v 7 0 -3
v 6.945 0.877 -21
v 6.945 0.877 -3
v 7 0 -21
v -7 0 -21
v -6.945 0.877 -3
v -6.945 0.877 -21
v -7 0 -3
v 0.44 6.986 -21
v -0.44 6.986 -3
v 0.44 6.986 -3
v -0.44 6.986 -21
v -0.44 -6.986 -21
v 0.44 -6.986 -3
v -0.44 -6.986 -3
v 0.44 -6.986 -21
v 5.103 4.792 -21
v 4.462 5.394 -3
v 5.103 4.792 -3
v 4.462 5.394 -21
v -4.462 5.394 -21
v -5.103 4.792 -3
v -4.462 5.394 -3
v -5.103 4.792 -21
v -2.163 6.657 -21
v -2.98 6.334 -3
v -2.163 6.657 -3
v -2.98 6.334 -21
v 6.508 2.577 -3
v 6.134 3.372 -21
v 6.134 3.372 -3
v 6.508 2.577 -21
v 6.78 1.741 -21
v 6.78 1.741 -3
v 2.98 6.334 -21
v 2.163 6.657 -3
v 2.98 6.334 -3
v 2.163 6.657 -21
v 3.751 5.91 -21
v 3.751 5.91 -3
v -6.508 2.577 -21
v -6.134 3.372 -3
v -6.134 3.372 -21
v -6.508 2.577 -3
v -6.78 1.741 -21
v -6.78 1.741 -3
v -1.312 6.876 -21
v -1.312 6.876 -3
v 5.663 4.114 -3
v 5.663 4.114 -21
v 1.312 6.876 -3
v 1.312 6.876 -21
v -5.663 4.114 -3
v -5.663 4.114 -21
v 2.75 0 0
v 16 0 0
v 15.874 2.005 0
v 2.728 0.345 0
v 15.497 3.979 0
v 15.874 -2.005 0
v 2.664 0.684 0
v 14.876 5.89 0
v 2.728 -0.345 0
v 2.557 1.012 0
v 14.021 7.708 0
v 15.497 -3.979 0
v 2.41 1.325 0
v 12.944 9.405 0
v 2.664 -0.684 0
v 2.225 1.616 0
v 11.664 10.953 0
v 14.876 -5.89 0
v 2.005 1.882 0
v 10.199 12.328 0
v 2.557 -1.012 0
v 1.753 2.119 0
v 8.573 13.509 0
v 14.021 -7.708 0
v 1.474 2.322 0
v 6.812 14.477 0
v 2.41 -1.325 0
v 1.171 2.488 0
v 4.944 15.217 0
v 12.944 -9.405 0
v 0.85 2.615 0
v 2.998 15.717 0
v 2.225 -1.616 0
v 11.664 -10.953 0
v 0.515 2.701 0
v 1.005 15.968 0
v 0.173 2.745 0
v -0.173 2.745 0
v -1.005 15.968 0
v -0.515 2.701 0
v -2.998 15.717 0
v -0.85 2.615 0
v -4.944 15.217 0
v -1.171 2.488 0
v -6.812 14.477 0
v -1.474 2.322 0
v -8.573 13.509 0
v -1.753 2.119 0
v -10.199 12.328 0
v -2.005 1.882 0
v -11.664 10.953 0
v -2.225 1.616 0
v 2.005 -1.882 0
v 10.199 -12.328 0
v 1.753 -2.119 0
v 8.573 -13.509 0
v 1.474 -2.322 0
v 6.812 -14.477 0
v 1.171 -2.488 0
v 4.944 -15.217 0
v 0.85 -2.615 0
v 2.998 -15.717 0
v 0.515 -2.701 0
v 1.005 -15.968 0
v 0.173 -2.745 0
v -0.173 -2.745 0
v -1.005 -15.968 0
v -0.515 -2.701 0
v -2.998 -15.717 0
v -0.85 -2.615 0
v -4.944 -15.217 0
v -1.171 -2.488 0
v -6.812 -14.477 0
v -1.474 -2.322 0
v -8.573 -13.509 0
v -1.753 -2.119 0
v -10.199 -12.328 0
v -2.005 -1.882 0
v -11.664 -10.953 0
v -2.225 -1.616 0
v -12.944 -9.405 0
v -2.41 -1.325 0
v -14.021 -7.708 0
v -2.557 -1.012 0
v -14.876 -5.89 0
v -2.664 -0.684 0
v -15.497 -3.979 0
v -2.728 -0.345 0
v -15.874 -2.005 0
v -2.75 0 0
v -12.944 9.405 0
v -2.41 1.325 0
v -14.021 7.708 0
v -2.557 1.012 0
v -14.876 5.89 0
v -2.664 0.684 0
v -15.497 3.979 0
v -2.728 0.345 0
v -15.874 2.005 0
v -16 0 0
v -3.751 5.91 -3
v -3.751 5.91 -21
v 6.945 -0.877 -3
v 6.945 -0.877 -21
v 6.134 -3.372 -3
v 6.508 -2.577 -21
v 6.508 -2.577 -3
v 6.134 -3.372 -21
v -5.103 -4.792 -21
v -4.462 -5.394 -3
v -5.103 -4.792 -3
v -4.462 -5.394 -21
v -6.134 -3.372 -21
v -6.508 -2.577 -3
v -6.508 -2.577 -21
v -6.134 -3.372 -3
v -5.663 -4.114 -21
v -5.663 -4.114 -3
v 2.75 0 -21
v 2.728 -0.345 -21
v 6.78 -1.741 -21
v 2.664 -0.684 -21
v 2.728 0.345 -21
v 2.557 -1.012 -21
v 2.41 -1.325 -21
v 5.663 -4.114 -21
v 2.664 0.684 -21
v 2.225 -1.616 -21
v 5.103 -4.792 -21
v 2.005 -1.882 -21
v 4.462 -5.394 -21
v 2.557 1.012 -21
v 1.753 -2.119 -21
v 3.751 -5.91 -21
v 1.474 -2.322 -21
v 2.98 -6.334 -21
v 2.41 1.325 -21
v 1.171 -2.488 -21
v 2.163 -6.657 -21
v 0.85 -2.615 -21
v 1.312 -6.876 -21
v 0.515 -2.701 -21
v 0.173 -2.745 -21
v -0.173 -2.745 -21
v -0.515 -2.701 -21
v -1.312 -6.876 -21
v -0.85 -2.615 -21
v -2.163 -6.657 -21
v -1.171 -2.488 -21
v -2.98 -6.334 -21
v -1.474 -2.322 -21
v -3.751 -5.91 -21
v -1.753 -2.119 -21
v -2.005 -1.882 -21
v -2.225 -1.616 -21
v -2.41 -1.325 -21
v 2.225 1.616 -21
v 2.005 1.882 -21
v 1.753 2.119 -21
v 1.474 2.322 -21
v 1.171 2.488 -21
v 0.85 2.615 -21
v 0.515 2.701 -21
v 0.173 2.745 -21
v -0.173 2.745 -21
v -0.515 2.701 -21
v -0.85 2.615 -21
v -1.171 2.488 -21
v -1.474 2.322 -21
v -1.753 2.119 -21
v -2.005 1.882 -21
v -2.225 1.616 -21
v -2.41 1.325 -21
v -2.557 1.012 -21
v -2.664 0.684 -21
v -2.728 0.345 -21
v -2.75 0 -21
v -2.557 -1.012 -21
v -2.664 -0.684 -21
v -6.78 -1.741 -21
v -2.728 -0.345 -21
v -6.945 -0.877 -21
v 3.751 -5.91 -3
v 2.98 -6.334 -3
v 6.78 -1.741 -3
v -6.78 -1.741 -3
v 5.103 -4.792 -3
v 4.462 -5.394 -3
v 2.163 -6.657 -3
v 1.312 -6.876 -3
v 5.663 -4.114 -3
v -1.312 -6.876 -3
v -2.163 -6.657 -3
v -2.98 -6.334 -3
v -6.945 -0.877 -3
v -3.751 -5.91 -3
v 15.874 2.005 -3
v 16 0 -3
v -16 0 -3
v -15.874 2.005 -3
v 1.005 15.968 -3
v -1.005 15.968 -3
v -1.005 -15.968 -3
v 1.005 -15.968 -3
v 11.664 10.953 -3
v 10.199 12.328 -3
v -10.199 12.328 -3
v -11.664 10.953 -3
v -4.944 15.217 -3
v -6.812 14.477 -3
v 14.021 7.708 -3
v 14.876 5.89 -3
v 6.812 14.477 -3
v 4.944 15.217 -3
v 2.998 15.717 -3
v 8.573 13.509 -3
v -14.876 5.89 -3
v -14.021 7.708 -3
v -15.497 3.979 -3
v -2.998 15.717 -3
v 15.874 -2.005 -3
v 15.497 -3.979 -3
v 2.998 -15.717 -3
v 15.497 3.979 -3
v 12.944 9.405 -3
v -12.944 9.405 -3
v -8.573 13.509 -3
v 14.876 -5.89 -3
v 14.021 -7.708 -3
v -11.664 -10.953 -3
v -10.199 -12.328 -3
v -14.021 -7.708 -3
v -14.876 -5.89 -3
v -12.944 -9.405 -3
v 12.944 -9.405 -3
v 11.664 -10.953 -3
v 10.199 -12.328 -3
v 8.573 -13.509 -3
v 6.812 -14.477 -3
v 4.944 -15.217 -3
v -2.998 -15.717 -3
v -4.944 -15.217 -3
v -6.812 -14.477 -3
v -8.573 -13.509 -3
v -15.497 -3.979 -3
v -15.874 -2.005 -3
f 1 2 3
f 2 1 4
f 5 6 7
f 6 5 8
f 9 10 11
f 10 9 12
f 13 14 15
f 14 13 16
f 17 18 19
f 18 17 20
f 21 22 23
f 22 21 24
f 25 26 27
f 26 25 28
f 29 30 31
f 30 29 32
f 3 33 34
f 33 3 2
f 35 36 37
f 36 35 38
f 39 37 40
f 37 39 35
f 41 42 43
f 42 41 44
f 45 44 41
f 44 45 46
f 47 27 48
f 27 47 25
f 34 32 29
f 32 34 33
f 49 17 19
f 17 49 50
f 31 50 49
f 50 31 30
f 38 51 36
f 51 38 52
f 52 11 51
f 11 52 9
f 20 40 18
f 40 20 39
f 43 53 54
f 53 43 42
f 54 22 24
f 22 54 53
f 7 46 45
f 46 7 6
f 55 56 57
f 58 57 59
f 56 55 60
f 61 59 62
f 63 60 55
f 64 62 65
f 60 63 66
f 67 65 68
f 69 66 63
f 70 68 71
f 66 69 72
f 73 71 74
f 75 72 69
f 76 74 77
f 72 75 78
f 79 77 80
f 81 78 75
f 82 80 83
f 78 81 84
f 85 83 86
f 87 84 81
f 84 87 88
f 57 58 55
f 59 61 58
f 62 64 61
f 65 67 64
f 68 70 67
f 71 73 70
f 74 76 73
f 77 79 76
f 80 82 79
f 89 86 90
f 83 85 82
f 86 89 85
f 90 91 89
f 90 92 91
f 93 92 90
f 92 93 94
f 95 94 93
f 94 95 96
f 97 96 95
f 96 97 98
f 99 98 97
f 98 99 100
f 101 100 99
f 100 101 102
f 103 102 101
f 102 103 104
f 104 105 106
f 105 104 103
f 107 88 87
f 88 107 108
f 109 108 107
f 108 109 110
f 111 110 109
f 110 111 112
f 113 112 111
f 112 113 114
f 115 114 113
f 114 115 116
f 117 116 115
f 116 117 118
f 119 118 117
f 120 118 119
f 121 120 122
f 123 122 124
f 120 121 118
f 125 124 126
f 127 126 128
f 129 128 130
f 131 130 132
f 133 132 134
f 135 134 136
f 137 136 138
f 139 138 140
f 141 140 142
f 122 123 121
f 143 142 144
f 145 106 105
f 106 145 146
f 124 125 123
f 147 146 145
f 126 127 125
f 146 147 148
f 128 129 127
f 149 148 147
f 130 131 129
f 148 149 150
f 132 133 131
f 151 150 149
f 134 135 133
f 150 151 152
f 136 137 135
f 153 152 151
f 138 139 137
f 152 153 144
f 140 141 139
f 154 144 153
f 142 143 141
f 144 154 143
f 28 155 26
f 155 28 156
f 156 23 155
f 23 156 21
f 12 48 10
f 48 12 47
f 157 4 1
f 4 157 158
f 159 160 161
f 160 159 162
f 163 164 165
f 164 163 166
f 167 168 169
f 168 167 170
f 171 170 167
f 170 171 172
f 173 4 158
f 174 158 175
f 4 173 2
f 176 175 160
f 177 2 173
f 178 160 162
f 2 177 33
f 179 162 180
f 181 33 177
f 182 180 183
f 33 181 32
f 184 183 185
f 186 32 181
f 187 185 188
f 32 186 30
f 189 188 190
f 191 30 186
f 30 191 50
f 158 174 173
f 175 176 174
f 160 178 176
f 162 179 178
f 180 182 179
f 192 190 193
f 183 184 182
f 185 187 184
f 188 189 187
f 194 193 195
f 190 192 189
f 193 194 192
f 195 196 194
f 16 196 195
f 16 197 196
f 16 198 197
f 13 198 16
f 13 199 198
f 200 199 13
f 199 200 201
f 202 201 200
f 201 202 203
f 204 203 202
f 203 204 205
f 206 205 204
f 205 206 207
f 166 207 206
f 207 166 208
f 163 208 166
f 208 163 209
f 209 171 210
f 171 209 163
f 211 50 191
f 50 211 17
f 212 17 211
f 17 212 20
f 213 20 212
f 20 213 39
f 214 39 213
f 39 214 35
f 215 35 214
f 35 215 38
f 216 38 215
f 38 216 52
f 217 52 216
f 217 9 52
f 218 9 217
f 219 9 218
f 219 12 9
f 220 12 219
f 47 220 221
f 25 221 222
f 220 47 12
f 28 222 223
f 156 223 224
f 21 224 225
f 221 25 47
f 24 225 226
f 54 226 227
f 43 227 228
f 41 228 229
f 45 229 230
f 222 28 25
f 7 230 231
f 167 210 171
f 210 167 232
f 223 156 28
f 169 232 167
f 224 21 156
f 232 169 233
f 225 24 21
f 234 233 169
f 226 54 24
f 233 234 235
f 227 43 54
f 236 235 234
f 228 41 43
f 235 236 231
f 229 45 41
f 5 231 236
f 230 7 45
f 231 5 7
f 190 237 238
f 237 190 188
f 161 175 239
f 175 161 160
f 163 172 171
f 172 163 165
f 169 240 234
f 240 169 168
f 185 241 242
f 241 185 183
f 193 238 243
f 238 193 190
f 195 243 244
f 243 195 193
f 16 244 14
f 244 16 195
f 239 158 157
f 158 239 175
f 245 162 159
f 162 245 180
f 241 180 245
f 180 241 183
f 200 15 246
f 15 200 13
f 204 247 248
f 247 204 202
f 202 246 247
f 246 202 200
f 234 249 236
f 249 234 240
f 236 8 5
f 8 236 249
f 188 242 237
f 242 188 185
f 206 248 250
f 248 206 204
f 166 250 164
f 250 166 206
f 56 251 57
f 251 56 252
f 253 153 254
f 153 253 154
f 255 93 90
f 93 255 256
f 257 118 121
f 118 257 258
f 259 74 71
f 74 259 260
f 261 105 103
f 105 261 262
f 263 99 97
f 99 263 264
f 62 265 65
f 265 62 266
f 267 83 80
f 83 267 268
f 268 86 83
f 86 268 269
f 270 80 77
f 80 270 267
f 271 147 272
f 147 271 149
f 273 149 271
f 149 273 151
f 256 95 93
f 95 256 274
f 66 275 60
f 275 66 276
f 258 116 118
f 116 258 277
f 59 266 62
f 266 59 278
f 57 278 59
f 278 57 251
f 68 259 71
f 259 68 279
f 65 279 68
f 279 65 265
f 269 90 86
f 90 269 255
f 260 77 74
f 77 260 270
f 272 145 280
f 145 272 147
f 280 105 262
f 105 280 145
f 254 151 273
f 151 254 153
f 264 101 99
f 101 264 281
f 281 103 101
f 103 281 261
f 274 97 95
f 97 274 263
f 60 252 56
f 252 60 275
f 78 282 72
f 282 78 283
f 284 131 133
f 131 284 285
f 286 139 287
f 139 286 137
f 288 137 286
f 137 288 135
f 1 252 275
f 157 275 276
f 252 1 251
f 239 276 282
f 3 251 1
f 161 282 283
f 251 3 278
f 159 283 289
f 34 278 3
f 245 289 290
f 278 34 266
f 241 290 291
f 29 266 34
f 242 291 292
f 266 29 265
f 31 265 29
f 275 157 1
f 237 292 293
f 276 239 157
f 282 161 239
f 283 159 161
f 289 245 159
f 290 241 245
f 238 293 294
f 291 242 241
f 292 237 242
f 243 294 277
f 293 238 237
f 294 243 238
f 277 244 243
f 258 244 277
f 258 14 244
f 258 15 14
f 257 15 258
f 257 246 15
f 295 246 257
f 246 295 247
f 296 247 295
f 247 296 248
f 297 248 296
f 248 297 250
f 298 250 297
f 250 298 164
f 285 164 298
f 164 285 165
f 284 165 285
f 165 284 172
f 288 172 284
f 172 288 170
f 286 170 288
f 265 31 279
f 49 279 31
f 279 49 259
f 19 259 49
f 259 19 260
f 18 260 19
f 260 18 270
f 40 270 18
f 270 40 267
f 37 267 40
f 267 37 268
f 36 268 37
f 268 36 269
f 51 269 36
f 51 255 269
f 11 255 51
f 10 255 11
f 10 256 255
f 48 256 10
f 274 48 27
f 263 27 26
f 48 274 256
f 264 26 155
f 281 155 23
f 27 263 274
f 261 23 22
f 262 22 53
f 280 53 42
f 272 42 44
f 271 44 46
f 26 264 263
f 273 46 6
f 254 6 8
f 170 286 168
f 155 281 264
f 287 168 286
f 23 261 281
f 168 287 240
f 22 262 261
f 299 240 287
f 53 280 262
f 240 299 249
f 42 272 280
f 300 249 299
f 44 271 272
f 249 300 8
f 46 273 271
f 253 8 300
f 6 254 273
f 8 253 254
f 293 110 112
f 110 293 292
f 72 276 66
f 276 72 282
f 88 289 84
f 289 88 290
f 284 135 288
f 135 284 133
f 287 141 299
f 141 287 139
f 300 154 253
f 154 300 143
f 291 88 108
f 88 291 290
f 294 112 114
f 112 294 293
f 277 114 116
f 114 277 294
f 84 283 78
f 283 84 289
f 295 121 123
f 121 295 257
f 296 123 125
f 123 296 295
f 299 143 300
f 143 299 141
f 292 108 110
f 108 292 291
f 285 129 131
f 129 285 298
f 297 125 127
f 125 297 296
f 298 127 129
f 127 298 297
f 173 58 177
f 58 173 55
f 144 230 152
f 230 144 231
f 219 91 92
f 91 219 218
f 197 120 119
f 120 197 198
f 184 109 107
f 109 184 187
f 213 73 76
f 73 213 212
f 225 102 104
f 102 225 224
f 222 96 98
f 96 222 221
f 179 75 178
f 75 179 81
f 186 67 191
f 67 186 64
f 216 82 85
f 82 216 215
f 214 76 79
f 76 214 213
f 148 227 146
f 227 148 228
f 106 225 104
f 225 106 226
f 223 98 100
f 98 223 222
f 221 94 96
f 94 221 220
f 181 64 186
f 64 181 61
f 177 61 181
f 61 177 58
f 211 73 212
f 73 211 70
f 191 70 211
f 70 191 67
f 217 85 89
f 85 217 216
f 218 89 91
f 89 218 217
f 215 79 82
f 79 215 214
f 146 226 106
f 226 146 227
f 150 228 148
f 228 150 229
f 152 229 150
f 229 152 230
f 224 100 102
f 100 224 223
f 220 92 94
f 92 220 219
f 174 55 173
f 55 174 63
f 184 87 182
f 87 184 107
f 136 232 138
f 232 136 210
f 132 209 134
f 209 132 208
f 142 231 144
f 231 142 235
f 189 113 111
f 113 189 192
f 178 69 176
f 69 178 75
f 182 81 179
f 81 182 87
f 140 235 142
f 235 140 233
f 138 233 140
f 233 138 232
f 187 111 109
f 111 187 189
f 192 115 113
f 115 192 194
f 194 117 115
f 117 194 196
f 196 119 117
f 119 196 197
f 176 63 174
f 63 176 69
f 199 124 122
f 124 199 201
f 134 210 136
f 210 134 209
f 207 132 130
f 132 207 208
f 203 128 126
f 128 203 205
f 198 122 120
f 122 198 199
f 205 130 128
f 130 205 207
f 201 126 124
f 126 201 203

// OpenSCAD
$fn = 50;


difference() {
	union() {
		translate(v = [0, 0, -21.0000000000]) {
			cylinder(h = 21, r = 7.0000000000);
		}
		translate(v = [0, 0, -3.0000000000]) {
			cylinder(h = 3, r = 16.0000000000);
		}
	}
	union() {
		#translate(v = [0, 0, -21]) {
			cylinder(h = 21, r = 2.7500000000);
		}
	}
}
